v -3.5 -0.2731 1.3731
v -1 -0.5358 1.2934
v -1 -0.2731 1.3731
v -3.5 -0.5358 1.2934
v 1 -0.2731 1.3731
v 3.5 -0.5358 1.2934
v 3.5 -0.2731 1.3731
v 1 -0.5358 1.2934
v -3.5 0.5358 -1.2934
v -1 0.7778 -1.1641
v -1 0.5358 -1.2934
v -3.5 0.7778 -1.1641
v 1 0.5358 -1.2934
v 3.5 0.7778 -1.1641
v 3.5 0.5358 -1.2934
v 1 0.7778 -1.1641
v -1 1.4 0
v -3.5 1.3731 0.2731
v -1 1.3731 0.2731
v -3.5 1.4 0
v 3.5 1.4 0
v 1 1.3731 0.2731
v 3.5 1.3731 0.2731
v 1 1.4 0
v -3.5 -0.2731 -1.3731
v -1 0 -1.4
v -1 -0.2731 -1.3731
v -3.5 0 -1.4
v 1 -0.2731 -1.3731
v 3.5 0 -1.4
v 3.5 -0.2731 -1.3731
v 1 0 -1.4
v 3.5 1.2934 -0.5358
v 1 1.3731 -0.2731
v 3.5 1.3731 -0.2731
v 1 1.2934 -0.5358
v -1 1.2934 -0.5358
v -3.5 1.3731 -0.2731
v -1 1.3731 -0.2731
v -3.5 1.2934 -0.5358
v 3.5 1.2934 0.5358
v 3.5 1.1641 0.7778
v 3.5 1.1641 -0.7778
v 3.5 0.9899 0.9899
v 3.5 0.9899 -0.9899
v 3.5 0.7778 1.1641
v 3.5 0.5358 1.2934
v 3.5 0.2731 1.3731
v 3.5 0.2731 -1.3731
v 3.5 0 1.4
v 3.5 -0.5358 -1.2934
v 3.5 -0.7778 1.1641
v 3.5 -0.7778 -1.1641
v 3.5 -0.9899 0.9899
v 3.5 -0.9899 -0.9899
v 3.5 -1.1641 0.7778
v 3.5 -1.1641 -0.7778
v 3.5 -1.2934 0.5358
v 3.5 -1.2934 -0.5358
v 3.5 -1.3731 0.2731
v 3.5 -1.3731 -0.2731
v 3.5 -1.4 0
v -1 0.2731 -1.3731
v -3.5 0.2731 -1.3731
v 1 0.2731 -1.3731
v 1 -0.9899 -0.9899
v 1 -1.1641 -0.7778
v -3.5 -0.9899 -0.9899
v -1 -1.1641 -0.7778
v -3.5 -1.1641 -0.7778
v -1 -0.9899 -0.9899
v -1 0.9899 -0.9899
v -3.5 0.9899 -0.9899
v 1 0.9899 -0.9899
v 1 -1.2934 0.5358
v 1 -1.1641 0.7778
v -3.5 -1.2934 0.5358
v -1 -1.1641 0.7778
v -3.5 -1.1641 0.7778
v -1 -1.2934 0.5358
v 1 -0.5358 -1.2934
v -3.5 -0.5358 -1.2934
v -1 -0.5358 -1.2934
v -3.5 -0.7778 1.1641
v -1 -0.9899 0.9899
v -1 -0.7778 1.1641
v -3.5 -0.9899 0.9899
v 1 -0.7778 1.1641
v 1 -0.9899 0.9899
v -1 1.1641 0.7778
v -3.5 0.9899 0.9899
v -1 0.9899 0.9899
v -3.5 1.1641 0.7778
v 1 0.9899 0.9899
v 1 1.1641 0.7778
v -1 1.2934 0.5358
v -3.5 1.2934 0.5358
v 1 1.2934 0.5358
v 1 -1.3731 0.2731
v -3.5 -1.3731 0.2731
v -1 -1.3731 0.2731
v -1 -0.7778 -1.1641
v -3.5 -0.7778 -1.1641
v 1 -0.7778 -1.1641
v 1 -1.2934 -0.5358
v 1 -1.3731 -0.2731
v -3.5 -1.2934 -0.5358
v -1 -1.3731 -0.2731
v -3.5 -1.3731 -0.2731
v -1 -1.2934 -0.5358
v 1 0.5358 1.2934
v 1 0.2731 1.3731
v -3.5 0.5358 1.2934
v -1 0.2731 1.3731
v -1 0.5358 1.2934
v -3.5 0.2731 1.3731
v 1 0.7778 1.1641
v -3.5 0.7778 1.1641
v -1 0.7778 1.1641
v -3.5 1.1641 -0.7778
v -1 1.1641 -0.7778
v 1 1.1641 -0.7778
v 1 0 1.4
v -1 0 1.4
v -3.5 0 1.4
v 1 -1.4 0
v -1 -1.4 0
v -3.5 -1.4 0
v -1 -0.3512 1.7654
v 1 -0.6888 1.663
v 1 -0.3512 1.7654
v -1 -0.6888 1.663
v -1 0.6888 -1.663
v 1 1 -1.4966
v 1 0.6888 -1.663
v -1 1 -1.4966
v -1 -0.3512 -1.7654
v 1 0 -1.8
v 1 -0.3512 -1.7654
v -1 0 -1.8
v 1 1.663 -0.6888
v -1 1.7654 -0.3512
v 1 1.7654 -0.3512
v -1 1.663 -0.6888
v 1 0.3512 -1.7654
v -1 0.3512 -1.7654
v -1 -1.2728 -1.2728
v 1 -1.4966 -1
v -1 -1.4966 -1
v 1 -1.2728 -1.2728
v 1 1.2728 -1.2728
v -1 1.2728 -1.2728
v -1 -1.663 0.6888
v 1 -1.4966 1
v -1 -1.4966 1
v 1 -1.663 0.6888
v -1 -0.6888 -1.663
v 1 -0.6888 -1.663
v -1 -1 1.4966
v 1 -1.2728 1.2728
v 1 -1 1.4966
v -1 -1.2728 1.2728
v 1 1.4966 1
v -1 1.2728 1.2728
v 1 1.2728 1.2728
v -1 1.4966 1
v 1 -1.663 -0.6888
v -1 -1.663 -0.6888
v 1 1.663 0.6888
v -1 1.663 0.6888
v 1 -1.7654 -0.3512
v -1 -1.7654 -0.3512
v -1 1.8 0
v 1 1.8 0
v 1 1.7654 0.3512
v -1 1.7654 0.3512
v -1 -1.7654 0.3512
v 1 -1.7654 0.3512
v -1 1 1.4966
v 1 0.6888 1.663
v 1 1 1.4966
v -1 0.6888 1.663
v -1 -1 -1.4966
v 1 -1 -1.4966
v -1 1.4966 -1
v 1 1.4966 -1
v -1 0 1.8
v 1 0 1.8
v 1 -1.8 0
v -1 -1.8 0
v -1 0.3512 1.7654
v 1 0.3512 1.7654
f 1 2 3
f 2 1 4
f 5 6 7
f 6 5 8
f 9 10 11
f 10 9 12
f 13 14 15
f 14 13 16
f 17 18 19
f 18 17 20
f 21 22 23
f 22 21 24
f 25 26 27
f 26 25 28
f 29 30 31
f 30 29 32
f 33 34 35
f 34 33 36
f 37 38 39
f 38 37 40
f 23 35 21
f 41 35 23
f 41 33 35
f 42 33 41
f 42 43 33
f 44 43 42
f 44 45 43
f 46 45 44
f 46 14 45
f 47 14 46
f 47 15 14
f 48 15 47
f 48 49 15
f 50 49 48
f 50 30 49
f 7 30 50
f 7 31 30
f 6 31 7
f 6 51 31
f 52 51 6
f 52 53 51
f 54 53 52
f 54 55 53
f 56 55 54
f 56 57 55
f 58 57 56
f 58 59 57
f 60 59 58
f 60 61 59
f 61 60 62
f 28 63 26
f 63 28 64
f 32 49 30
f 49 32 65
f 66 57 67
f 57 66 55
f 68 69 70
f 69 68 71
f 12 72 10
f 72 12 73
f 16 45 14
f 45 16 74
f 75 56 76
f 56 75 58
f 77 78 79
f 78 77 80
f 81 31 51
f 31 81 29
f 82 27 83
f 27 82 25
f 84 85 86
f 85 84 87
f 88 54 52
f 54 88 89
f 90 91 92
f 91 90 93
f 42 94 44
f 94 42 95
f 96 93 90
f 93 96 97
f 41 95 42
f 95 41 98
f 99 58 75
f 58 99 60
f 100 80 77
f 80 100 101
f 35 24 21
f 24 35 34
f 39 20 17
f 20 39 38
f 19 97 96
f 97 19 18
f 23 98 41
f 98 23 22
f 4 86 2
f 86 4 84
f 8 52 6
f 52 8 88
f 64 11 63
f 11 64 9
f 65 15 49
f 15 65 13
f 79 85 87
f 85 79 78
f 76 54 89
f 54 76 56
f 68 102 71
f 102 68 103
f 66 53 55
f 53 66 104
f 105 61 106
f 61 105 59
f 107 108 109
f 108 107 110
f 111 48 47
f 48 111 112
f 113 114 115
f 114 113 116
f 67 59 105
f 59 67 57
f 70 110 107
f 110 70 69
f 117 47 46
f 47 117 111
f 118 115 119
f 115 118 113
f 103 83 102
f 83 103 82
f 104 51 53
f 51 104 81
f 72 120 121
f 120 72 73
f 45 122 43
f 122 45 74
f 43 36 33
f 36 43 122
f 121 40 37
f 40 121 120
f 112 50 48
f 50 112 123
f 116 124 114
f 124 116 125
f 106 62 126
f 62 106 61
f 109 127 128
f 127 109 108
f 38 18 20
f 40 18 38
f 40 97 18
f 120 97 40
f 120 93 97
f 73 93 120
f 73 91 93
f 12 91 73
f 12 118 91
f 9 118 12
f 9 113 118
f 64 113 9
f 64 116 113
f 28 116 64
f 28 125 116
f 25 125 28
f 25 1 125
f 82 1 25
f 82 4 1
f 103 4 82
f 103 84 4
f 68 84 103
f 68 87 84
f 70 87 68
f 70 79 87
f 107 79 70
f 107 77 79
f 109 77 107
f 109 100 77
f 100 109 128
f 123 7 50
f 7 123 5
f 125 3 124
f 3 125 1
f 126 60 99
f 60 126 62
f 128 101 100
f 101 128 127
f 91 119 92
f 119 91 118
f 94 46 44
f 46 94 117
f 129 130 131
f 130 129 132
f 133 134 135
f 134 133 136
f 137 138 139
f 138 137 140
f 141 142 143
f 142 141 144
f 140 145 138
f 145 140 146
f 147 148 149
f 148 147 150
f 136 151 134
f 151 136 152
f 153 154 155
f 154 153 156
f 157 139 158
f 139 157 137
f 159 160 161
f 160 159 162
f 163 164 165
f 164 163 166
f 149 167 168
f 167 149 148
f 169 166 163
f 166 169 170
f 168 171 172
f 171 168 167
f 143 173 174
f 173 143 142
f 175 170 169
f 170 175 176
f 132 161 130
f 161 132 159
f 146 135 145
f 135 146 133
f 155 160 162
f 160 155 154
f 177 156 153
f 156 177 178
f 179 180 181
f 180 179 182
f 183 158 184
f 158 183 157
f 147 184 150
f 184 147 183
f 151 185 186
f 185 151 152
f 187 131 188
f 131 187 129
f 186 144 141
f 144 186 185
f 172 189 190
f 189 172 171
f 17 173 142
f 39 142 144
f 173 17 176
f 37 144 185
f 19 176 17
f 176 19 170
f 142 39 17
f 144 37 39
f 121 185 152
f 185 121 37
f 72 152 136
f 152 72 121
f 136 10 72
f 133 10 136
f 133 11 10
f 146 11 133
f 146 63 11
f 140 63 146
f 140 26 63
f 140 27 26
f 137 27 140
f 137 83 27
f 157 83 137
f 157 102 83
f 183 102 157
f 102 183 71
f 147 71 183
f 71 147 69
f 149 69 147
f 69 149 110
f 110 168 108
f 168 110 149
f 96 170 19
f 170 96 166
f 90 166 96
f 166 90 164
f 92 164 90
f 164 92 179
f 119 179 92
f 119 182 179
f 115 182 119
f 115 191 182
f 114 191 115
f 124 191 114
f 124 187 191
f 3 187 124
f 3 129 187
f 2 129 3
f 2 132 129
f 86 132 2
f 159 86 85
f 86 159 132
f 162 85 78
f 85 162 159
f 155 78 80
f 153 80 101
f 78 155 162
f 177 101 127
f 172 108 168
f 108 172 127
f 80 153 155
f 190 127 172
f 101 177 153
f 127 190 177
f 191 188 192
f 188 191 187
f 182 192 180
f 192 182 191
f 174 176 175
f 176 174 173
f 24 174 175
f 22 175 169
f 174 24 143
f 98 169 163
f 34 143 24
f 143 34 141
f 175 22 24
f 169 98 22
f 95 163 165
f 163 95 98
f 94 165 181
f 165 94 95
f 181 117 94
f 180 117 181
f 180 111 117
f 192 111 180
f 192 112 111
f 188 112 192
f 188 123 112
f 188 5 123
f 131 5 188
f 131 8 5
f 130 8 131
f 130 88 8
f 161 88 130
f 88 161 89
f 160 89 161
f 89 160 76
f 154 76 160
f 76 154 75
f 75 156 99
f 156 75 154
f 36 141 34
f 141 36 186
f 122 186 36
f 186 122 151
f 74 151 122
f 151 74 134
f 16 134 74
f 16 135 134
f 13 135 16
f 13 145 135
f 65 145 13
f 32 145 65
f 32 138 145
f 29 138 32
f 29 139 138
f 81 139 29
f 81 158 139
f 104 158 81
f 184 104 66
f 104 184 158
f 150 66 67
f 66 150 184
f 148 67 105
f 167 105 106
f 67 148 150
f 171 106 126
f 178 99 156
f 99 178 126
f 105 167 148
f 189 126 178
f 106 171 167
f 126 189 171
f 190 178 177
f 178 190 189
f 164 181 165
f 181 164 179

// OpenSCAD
// ============================================================
// BRIDGE — Design System 3D Modular
// ============================================================
// Dowel de junção coplanar: pino duplo que atravessa a junção
// entre duas PLATEs (ou PLATE↔ATOM) encostadas borda a borda,
// entrando nos furos de borda de cada lado.
//
// Vista de cima (junção vertical no centro):
//
//   PLATE A      │      PLATE B
//        ━━━━━━━━┿━━━━━━━━      ← dowel Ø2.8 (metade em cada furo)
//                │ ← peças ENCOSTADAS — gap zero
//
// Junção 100% invisível: nenhum furo de face consumido, nada
// acima ou abaixo da superfície. Usar 2 dowels por junção
// (um em cada furo de borda do par de células) para travar
// rotação.
//
// Sem canal de fio: a seção Ø2.8 não comporta canal — fios
// atravessam a junção pelos furos de face, que ficam livres.
//
// Parâmetros:
// - edge_hole_d     : furo de borda da PLATE/ATOM (igual às peças)
// - edge_hole_depth : profundidade do furo de borda
// - tolerance       : folga de encaixe
// ============================================================

/* [Interface de borda — manter igual à PLATE/ATOM] */

// Diâmetro do furo de borda (mm)
edge_hole_d = 3; // [1:0.1:5]

// Profundidade do furo de borda (mm)
edge_hole_depth = 4; // [1:0.5:10]

// Rebaixo do colar na boca dos furos (manter igual à PLATE/ATOM)
// Colar central no dowel: trava de profundidade — divide 50/50
edge_collar_w = 0.4; // [0:0.1:1]

// Profundidade do rebaixo / meia-altura do colar (mm)
edge_collar_depth = 1; // [0.5:0.25:2]

/* [Tolerância de impressão] */

// Folga de encaixe — reduz o pino para caber no furo de borda
tolerance = 0.2; // [0:0.05:0.5]

/* [Qualidade] */
$fn = 32;

// ============================================================
// CALCULADOS
// ============================================================

// Diâmetro efetivo do pino (com tolerância)
pin_d = edge_hole_d - tolerance;

// Diâmetro do colar central (assenta nos rebaixos das duas bocas)
collar_d = edge_hole_d + 2 * edge_collar_w - tolerance;

// Meio-comprimento em cada furo — menor que a profundidade
// do furo para não bater no fundo
pin_half_len = edge_hole_depth - 0.5;

// Comprimento total do dowel
pin_len = pin_half_len * 2;

// ============================================================
// MÓDULOS
// ============================================================

// ------------------------------------------------------------
// Módulo: BRIDGE — dowel centrado na origem, eixo X
// (junção fica no plano X = 0)
// ------------------------------------------------------------
module bridge() {
    // Corpo do dowel
    translate([-pin_half_len, 0, 0])
        rotate([0, 90, 0])
            cylinder(d = pin_d, h = pin_len);

    // Colar central — 1 edge_collar_depth para cada lado da junção,
    // assenta nos rebaixos das bocas dos dois furos
    if (edge_collar_w > 0)
        translate([-edge_collar_depth, 0, 0])
            rotate([0, 90, 0])
                cylinder(d = collar_d, h = edge_collar_depth * 2);
}

// ============================================================
// RENDER
// ============================================================
part_color = [0.35, 0.38, 0.42];
color(part_color) bridge();

// ============================================================
// INFO — dimensões no console
// ============================================================
echo("=== BRIDGE ===");
echo(str("Dowel              : Ø", pin_d, "mm × ", pin_len, "mm (", pin_half_len, "mm em cada peça)"));
echo(str("Colar central      : ", edge_collar_w > 0 ? str("Ø", collar_d, "mm × ", edge_collar_depth * 2, "mm (trava 50/50)") : "sem colar"));
echo(str("Tolerância         : ", tolerance, "mm"));
echo("Uso                : 2 dowels por junção (um por furo de borda do par de células)");
echo("---");
echo(str("Pino cabe no furo (prof. ", edge_hole_depth, "mm): ", pin_half_len < edge_hole_depth ? "SIM" : "VERIFICAR"));
